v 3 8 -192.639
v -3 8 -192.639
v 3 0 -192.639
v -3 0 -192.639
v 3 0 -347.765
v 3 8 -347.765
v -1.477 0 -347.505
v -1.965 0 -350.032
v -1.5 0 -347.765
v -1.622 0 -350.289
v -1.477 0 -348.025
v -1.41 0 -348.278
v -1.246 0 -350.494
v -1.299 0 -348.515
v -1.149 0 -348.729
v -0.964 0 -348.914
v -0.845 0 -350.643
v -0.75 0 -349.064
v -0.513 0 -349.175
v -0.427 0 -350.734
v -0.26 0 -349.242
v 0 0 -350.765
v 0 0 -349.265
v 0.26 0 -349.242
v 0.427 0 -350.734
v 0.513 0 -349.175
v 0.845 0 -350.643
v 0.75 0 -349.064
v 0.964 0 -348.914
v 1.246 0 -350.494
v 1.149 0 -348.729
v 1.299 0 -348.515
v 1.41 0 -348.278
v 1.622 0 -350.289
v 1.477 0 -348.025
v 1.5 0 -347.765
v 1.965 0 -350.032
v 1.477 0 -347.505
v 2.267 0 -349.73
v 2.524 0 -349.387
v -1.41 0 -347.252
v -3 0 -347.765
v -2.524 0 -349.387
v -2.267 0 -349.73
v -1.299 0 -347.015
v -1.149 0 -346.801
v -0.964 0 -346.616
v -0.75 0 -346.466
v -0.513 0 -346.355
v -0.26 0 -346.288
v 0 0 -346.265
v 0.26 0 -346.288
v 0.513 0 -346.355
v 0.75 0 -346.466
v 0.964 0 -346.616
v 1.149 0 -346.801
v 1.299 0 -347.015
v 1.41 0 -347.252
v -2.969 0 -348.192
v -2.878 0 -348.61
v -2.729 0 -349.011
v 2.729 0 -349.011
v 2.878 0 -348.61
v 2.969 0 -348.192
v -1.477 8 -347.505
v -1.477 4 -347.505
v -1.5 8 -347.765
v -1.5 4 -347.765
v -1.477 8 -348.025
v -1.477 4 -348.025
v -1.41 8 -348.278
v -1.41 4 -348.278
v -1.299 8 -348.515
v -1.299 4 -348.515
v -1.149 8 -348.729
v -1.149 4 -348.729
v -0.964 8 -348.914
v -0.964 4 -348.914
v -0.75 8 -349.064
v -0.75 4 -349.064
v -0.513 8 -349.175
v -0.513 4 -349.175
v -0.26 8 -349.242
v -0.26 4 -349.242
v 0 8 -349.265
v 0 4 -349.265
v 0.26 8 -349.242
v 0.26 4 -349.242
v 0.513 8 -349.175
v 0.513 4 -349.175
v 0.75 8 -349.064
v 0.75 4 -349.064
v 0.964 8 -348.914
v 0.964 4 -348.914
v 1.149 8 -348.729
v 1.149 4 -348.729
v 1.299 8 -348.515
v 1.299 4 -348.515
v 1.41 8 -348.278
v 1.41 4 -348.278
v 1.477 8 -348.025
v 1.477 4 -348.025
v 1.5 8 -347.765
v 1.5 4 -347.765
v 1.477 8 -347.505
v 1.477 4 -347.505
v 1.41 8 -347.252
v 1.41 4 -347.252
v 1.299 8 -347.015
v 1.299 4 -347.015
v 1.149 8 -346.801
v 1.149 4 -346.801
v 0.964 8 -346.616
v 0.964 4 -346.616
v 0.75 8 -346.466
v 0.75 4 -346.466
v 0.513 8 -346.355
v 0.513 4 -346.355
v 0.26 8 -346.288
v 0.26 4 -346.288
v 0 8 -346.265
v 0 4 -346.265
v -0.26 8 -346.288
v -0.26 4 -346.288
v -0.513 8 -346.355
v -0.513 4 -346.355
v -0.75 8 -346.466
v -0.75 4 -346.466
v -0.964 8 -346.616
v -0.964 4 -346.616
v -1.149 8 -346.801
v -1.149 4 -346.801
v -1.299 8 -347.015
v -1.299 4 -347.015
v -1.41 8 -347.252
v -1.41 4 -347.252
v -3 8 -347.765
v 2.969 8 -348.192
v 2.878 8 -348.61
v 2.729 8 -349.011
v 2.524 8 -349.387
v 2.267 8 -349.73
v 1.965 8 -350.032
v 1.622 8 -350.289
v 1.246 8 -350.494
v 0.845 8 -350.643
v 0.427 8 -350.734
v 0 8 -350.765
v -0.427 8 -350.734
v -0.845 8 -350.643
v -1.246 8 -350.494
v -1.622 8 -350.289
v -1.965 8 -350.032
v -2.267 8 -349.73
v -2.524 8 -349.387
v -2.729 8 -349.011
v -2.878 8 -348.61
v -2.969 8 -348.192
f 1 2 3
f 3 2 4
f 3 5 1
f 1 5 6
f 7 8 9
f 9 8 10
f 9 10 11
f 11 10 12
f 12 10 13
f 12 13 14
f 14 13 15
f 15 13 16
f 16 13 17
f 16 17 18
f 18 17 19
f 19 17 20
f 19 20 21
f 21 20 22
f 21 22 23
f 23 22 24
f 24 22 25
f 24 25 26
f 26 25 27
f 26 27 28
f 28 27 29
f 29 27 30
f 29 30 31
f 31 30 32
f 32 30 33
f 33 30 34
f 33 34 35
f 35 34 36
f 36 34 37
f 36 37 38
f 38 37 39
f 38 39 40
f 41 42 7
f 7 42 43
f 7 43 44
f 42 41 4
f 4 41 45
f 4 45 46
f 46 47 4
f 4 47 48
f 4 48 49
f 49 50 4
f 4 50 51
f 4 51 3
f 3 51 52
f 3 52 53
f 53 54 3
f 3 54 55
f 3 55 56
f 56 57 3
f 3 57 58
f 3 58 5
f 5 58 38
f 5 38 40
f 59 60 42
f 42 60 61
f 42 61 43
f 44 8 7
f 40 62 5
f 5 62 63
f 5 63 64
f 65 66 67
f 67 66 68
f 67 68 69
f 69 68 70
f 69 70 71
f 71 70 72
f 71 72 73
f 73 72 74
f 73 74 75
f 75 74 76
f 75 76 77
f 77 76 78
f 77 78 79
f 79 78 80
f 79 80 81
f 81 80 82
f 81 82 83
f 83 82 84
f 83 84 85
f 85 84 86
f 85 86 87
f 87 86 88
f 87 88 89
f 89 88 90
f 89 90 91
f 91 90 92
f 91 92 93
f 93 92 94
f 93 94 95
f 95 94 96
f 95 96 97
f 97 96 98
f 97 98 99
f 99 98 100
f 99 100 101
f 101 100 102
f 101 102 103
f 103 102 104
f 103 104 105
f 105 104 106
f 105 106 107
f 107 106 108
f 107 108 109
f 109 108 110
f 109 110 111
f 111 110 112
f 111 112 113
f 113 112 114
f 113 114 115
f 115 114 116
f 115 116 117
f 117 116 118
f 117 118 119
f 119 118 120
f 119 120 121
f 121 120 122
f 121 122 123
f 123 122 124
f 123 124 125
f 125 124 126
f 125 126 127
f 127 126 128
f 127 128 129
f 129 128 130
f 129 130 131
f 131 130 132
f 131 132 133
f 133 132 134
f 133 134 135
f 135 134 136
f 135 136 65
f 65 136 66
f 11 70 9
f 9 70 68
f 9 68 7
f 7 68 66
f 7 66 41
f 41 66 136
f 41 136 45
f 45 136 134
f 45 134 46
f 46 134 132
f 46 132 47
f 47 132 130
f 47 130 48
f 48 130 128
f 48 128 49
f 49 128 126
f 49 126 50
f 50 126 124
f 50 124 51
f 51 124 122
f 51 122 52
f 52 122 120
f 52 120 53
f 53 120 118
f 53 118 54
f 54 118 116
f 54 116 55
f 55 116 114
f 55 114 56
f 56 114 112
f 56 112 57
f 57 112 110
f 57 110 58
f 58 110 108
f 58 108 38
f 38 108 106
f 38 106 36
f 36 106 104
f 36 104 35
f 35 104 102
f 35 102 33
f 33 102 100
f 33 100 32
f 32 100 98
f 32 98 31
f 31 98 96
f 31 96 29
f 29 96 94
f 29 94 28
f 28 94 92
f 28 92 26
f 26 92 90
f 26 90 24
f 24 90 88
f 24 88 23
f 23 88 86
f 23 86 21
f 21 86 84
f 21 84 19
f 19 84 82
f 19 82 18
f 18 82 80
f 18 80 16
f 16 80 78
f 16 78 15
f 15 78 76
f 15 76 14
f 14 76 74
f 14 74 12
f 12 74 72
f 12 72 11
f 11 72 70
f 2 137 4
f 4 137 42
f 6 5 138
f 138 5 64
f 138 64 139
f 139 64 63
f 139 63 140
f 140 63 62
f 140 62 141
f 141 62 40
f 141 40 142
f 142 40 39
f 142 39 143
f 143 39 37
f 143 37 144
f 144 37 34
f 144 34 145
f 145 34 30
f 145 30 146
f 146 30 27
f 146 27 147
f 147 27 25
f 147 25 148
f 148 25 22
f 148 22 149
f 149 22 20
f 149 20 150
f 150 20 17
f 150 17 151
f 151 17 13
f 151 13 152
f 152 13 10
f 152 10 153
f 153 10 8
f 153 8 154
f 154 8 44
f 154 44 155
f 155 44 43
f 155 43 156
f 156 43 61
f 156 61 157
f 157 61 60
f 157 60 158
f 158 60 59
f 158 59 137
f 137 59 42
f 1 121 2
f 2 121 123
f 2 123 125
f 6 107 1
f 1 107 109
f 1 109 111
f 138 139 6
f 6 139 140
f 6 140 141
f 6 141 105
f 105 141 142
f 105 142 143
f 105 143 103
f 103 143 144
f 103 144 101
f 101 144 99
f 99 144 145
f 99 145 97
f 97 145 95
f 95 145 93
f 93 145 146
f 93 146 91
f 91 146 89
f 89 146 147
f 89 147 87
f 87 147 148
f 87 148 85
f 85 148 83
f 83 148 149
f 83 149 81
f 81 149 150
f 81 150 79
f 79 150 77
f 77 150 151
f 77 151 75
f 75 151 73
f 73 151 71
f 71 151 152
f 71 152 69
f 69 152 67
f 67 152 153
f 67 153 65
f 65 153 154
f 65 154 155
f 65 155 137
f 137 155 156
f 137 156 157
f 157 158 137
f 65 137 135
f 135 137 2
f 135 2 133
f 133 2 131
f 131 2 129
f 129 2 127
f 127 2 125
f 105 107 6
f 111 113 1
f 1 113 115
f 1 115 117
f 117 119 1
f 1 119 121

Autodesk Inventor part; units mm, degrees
ref_plane "YZ Plane" through (0, 0, 0) normal (1, 0, 0) x (0, 1, 0)
ref_plane "XZ Plane" through (0, 0, 0) normal (0, 1, 0) x (-1, 0, 0)
ref_plane "XY Plane" through (0, 0, 0) normal (0, 0, 1) x (1, 0, 0)
sketch "Sketch1" plane through (0, 0, 0) normal (0, 1, 0) x (-1, 0, 0)
  line L0 (0, 0) -> (0, -347.765) construction
  line L1 (-3, 0) -> (-3, -347.765)
  line L2 (3, -347.765) -> (3, 0)
  arc A0 (3, 0) -> (-3, 0) centre (0, 0) ccw
  arc A1 (-3, -347.765) -> (3, -347.765) centre (0, -347.765) ccw
  circle A2 centre (0, 0) radius 1.5
  circle A3 centre (0, -347.765) radius 1.5
  circle A4 centre (0, -131.233) radius 1.5
  circle A5 centre (0, -37.934) radius 1.5
  point P0 (0, -173.8825)
  dimension "d0" = 347.765
  dimension "d1" = 6
  dimension "d2" = 3
  dimension "d3" = 3
  dimension "d6" = 3
  dimension "d7" = 131.233
  dimension "d8" = 3
  dimension "d9" = 37.934
extrude "Extrusion1" add sketch "Sketch1" along normal blind 8
sketch "Sketch2" plane through (0, 8, 0) normal (0, 1, 0) x (1, 0, 0)
  arc A0 (3, 347.765) -> (-3, 347.765) centre (0, 347.765) ccw projected
  line L0 (-3, 347.765) -> (-3, 0) projected
  arc A1 (-3, 0) -> (3, 0) centre (0, 0) ccw projected
  line L1 (3, 0) -> (3, 347.765) projected
  circle A2 centre (0, 131.233) radius 1.5 projected
  circle A3 centre (0, 37.934) radius 1.5 projected
  circle A4 centre (0, 347.765) radius 1.5 projected
  circle A5 centre (0, 0) radius 1.5 projected
sketch "Sketch3" plane through (0, 8, 0) normal (0, 1, 0) x (1, 0, 0)
  line L0 (-13.5041, 192.6393) -> (33.2898, 192.6393)
  line L1 (33.2898, 192.6393) -> (33.2898, -23.3325)
  line L2 (33.2898, -23.3325) -> (-13.5041, -23.3325)
  line L3 (-13.5041, -23.3325) -> (-13.5041, 192.6393)
  line L4 (-64.7974, 383.8644) -> (82.7834, 383.8644)
  line L5 (82.7834, 383.8644) -> (82.7834, -81.8249)
  line L6 (82.7834, -81.8249) -> (-64.7974, -81.8249)
  line L7 (-64.7974, -81.8249) -> (-64.7974, 383.8644)
  point P0 (0, 0)
extrude "Extrusion2" cut sketch "Sketch3" against normal blind 10 contours L0 L1 L2 L3
sketch "Sketch4" plane through (0, 8, 0) normal (0, 1, 0) x (1, 0, 0)
  line L0 (-3, 192.6393) -> (3, 192.6393) projected
  line L1 (3, 192.6393) -> (3, 347.765) projected
  arc A0 (3, 347.765) -> (-3, 347.765) centre (0, 347.765) ccw projected
  line L2 (-3, 347.765) -> (-3, 192.6393) projected
  circle A1 centre (0, 347.765) radius 1.5 projected
  point P0 (0, 0)
properties part number "Part_10_p1"
